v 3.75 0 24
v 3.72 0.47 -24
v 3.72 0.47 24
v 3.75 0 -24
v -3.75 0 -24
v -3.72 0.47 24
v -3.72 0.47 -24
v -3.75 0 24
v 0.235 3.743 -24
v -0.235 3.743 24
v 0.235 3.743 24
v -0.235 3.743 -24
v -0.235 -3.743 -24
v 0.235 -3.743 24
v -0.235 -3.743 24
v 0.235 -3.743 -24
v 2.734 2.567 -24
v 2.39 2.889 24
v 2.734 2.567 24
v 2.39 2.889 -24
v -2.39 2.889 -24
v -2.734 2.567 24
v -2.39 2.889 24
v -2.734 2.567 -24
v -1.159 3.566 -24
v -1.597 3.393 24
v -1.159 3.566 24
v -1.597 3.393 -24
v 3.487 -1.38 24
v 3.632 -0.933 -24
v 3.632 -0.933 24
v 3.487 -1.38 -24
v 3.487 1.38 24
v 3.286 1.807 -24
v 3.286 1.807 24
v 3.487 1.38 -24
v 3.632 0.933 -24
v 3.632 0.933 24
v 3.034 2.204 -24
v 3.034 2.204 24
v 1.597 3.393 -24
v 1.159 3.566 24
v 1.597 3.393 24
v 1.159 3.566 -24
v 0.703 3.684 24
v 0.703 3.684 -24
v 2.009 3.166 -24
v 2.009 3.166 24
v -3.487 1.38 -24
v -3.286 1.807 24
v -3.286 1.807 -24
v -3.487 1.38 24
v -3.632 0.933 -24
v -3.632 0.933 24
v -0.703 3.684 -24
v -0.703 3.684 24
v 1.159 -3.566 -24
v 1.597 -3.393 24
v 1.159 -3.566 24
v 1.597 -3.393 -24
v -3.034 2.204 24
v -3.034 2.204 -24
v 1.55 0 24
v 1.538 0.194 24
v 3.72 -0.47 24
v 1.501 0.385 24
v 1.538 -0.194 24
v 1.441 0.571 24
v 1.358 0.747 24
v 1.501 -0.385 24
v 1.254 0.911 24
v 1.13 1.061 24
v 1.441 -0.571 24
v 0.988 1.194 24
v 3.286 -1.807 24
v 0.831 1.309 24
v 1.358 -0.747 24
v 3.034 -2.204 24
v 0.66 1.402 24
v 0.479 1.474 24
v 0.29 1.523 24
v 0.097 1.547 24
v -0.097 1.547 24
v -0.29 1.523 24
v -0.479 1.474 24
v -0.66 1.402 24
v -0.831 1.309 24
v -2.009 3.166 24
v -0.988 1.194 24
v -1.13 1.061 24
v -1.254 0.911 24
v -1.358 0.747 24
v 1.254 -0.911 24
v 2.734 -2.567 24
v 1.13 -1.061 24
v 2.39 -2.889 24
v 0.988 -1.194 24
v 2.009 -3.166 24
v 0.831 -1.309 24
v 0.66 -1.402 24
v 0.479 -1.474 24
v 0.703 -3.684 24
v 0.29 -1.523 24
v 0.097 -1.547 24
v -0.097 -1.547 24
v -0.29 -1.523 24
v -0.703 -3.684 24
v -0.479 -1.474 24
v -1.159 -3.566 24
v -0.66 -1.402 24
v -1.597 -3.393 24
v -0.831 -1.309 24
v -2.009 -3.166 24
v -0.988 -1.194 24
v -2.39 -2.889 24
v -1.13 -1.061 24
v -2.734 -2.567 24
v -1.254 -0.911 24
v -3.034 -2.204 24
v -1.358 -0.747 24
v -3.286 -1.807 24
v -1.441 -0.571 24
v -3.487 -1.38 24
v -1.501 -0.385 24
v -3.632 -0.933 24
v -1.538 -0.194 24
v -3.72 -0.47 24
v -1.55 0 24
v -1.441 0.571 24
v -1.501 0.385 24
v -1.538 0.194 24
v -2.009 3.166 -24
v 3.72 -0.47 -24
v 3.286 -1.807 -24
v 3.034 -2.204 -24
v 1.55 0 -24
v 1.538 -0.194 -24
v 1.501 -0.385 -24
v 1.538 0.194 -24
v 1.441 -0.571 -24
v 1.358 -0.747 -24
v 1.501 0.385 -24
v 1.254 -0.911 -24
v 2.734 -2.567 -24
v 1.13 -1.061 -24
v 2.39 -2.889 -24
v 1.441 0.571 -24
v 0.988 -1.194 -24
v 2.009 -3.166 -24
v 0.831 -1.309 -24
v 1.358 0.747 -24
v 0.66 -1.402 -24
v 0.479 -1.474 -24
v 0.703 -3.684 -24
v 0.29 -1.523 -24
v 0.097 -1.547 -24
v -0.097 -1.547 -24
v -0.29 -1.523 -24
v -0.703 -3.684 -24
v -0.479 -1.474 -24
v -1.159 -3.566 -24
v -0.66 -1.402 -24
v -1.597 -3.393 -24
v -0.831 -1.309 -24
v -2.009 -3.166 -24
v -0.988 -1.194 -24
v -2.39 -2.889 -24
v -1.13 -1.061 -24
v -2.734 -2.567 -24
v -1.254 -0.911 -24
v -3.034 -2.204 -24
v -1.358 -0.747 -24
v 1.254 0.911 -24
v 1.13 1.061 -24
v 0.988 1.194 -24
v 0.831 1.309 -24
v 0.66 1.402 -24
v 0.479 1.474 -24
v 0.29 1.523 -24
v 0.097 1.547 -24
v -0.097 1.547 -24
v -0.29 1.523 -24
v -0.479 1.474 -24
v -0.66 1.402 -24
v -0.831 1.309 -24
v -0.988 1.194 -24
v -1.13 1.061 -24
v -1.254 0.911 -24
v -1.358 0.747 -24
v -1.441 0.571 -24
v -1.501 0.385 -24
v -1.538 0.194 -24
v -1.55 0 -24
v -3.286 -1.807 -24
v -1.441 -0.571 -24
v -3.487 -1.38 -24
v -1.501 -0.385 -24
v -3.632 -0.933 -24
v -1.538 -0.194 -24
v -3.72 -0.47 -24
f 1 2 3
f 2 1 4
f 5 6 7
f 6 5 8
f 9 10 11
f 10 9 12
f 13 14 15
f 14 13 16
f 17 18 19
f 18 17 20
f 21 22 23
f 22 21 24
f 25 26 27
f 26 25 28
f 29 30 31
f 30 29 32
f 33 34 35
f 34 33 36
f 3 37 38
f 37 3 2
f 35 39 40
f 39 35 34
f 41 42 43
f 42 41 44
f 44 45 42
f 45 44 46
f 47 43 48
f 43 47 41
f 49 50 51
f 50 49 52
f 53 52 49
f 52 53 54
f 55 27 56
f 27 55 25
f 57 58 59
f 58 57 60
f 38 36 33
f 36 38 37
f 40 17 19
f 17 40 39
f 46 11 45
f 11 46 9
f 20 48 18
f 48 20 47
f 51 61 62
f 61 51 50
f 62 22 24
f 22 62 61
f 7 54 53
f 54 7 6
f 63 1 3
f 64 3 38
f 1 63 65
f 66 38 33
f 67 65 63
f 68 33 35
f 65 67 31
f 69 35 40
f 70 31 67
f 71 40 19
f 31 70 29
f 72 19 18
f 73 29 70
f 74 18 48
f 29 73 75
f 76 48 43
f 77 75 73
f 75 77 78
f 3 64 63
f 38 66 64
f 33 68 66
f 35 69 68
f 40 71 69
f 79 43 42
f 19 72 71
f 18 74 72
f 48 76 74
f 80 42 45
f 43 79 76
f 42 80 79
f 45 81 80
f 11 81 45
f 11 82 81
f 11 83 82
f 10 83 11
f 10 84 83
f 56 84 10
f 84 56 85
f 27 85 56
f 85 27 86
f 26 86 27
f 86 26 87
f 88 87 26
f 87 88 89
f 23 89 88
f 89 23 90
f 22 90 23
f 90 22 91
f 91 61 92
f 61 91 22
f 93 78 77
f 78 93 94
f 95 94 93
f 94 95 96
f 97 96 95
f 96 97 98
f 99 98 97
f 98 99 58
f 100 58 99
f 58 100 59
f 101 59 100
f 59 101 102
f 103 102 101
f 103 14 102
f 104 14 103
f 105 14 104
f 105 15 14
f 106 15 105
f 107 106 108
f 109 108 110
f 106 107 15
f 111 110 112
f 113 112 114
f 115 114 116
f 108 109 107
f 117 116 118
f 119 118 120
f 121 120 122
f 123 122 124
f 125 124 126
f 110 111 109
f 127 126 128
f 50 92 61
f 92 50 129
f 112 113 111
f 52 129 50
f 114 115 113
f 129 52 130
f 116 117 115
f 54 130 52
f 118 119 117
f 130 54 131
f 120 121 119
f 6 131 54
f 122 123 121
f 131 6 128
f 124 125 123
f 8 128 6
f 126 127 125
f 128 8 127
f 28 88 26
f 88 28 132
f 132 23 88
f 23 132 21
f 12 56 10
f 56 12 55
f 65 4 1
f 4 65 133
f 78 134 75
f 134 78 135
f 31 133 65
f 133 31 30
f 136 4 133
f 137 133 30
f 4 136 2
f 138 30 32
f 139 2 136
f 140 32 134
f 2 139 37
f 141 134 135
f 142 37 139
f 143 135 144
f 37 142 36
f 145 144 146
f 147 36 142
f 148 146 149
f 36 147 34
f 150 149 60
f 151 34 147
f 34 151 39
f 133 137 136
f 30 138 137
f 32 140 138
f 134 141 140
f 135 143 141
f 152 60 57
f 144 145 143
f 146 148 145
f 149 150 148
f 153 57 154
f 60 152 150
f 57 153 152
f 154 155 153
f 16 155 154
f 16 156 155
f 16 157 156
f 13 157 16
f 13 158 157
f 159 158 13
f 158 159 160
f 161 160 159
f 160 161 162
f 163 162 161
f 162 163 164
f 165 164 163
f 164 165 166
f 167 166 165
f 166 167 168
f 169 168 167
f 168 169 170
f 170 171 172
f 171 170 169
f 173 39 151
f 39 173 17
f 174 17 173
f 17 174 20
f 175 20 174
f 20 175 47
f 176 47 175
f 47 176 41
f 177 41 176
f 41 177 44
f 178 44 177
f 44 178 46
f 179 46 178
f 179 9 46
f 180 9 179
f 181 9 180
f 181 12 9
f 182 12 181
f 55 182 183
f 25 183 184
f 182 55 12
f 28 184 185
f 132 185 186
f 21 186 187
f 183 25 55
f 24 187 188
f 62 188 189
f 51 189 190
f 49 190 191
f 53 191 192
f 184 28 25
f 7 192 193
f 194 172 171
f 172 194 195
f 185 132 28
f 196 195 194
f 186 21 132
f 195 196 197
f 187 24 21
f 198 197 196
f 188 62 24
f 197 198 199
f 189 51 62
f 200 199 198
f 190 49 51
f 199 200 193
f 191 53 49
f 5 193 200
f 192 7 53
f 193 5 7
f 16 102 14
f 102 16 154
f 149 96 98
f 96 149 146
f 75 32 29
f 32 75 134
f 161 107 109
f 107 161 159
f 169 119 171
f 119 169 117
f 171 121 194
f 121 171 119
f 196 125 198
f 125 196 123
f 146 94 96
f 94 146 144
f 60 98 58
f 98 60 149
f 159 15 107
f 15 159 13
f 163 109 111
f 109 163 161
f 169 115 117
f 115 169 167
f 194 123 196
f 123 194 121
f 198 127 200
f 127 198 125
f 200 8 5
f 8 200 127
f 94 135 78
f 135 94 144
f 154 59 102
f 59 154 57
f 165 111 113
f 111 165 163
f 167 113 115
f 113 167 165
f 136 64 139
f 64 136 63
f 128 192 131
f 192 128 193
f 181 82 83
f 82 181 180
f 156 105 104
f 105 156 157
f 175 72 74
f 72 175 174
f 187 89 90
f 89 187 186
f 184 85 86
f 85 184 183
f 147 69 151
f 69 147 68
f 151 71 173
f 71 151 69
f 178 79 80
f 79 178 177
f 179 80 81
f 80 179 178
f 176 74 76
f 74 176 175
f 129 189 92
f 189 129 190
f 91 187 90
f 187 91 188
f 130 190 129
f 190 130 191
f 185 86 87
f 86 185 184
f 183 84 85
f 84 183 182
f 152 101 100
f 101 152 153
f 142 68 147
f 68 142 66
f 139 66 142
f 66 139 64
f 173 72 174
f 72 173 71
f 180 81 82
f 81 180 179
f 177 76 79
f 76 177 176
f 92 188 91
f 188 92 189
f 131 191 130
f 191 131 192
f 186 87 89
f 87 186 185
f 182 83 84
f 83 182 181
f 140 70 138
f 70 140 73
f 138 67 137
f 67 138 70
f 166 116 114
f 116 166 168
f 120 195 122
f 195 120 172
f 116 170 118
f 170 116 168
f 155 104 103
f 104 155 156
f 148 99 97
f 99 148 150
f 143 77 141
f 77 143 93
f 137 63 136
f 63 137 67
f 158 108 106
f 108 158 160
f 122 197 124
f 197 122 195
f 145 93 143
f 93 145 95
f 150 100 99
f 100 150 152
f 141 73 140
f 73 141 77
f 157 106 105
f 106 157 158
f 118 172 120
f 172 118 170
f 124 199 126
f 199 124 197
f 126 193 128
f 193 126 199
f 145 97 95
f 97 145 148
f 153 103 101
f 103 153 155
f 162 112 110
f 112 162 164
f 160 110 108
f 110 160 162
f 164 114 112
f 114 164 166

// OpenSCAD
$fn = 50;


difference() {
	union() {
		translate(v = [0, 0, -24.0000000000]) {
			cylinder(h = 48, r = 3.7500000000);
		}
	}
	union() {
		translate(v = [0, 0, -100.0000000000]) {
			cylinder(h = 200, r = 1.5500000000);
		}
	}
}
